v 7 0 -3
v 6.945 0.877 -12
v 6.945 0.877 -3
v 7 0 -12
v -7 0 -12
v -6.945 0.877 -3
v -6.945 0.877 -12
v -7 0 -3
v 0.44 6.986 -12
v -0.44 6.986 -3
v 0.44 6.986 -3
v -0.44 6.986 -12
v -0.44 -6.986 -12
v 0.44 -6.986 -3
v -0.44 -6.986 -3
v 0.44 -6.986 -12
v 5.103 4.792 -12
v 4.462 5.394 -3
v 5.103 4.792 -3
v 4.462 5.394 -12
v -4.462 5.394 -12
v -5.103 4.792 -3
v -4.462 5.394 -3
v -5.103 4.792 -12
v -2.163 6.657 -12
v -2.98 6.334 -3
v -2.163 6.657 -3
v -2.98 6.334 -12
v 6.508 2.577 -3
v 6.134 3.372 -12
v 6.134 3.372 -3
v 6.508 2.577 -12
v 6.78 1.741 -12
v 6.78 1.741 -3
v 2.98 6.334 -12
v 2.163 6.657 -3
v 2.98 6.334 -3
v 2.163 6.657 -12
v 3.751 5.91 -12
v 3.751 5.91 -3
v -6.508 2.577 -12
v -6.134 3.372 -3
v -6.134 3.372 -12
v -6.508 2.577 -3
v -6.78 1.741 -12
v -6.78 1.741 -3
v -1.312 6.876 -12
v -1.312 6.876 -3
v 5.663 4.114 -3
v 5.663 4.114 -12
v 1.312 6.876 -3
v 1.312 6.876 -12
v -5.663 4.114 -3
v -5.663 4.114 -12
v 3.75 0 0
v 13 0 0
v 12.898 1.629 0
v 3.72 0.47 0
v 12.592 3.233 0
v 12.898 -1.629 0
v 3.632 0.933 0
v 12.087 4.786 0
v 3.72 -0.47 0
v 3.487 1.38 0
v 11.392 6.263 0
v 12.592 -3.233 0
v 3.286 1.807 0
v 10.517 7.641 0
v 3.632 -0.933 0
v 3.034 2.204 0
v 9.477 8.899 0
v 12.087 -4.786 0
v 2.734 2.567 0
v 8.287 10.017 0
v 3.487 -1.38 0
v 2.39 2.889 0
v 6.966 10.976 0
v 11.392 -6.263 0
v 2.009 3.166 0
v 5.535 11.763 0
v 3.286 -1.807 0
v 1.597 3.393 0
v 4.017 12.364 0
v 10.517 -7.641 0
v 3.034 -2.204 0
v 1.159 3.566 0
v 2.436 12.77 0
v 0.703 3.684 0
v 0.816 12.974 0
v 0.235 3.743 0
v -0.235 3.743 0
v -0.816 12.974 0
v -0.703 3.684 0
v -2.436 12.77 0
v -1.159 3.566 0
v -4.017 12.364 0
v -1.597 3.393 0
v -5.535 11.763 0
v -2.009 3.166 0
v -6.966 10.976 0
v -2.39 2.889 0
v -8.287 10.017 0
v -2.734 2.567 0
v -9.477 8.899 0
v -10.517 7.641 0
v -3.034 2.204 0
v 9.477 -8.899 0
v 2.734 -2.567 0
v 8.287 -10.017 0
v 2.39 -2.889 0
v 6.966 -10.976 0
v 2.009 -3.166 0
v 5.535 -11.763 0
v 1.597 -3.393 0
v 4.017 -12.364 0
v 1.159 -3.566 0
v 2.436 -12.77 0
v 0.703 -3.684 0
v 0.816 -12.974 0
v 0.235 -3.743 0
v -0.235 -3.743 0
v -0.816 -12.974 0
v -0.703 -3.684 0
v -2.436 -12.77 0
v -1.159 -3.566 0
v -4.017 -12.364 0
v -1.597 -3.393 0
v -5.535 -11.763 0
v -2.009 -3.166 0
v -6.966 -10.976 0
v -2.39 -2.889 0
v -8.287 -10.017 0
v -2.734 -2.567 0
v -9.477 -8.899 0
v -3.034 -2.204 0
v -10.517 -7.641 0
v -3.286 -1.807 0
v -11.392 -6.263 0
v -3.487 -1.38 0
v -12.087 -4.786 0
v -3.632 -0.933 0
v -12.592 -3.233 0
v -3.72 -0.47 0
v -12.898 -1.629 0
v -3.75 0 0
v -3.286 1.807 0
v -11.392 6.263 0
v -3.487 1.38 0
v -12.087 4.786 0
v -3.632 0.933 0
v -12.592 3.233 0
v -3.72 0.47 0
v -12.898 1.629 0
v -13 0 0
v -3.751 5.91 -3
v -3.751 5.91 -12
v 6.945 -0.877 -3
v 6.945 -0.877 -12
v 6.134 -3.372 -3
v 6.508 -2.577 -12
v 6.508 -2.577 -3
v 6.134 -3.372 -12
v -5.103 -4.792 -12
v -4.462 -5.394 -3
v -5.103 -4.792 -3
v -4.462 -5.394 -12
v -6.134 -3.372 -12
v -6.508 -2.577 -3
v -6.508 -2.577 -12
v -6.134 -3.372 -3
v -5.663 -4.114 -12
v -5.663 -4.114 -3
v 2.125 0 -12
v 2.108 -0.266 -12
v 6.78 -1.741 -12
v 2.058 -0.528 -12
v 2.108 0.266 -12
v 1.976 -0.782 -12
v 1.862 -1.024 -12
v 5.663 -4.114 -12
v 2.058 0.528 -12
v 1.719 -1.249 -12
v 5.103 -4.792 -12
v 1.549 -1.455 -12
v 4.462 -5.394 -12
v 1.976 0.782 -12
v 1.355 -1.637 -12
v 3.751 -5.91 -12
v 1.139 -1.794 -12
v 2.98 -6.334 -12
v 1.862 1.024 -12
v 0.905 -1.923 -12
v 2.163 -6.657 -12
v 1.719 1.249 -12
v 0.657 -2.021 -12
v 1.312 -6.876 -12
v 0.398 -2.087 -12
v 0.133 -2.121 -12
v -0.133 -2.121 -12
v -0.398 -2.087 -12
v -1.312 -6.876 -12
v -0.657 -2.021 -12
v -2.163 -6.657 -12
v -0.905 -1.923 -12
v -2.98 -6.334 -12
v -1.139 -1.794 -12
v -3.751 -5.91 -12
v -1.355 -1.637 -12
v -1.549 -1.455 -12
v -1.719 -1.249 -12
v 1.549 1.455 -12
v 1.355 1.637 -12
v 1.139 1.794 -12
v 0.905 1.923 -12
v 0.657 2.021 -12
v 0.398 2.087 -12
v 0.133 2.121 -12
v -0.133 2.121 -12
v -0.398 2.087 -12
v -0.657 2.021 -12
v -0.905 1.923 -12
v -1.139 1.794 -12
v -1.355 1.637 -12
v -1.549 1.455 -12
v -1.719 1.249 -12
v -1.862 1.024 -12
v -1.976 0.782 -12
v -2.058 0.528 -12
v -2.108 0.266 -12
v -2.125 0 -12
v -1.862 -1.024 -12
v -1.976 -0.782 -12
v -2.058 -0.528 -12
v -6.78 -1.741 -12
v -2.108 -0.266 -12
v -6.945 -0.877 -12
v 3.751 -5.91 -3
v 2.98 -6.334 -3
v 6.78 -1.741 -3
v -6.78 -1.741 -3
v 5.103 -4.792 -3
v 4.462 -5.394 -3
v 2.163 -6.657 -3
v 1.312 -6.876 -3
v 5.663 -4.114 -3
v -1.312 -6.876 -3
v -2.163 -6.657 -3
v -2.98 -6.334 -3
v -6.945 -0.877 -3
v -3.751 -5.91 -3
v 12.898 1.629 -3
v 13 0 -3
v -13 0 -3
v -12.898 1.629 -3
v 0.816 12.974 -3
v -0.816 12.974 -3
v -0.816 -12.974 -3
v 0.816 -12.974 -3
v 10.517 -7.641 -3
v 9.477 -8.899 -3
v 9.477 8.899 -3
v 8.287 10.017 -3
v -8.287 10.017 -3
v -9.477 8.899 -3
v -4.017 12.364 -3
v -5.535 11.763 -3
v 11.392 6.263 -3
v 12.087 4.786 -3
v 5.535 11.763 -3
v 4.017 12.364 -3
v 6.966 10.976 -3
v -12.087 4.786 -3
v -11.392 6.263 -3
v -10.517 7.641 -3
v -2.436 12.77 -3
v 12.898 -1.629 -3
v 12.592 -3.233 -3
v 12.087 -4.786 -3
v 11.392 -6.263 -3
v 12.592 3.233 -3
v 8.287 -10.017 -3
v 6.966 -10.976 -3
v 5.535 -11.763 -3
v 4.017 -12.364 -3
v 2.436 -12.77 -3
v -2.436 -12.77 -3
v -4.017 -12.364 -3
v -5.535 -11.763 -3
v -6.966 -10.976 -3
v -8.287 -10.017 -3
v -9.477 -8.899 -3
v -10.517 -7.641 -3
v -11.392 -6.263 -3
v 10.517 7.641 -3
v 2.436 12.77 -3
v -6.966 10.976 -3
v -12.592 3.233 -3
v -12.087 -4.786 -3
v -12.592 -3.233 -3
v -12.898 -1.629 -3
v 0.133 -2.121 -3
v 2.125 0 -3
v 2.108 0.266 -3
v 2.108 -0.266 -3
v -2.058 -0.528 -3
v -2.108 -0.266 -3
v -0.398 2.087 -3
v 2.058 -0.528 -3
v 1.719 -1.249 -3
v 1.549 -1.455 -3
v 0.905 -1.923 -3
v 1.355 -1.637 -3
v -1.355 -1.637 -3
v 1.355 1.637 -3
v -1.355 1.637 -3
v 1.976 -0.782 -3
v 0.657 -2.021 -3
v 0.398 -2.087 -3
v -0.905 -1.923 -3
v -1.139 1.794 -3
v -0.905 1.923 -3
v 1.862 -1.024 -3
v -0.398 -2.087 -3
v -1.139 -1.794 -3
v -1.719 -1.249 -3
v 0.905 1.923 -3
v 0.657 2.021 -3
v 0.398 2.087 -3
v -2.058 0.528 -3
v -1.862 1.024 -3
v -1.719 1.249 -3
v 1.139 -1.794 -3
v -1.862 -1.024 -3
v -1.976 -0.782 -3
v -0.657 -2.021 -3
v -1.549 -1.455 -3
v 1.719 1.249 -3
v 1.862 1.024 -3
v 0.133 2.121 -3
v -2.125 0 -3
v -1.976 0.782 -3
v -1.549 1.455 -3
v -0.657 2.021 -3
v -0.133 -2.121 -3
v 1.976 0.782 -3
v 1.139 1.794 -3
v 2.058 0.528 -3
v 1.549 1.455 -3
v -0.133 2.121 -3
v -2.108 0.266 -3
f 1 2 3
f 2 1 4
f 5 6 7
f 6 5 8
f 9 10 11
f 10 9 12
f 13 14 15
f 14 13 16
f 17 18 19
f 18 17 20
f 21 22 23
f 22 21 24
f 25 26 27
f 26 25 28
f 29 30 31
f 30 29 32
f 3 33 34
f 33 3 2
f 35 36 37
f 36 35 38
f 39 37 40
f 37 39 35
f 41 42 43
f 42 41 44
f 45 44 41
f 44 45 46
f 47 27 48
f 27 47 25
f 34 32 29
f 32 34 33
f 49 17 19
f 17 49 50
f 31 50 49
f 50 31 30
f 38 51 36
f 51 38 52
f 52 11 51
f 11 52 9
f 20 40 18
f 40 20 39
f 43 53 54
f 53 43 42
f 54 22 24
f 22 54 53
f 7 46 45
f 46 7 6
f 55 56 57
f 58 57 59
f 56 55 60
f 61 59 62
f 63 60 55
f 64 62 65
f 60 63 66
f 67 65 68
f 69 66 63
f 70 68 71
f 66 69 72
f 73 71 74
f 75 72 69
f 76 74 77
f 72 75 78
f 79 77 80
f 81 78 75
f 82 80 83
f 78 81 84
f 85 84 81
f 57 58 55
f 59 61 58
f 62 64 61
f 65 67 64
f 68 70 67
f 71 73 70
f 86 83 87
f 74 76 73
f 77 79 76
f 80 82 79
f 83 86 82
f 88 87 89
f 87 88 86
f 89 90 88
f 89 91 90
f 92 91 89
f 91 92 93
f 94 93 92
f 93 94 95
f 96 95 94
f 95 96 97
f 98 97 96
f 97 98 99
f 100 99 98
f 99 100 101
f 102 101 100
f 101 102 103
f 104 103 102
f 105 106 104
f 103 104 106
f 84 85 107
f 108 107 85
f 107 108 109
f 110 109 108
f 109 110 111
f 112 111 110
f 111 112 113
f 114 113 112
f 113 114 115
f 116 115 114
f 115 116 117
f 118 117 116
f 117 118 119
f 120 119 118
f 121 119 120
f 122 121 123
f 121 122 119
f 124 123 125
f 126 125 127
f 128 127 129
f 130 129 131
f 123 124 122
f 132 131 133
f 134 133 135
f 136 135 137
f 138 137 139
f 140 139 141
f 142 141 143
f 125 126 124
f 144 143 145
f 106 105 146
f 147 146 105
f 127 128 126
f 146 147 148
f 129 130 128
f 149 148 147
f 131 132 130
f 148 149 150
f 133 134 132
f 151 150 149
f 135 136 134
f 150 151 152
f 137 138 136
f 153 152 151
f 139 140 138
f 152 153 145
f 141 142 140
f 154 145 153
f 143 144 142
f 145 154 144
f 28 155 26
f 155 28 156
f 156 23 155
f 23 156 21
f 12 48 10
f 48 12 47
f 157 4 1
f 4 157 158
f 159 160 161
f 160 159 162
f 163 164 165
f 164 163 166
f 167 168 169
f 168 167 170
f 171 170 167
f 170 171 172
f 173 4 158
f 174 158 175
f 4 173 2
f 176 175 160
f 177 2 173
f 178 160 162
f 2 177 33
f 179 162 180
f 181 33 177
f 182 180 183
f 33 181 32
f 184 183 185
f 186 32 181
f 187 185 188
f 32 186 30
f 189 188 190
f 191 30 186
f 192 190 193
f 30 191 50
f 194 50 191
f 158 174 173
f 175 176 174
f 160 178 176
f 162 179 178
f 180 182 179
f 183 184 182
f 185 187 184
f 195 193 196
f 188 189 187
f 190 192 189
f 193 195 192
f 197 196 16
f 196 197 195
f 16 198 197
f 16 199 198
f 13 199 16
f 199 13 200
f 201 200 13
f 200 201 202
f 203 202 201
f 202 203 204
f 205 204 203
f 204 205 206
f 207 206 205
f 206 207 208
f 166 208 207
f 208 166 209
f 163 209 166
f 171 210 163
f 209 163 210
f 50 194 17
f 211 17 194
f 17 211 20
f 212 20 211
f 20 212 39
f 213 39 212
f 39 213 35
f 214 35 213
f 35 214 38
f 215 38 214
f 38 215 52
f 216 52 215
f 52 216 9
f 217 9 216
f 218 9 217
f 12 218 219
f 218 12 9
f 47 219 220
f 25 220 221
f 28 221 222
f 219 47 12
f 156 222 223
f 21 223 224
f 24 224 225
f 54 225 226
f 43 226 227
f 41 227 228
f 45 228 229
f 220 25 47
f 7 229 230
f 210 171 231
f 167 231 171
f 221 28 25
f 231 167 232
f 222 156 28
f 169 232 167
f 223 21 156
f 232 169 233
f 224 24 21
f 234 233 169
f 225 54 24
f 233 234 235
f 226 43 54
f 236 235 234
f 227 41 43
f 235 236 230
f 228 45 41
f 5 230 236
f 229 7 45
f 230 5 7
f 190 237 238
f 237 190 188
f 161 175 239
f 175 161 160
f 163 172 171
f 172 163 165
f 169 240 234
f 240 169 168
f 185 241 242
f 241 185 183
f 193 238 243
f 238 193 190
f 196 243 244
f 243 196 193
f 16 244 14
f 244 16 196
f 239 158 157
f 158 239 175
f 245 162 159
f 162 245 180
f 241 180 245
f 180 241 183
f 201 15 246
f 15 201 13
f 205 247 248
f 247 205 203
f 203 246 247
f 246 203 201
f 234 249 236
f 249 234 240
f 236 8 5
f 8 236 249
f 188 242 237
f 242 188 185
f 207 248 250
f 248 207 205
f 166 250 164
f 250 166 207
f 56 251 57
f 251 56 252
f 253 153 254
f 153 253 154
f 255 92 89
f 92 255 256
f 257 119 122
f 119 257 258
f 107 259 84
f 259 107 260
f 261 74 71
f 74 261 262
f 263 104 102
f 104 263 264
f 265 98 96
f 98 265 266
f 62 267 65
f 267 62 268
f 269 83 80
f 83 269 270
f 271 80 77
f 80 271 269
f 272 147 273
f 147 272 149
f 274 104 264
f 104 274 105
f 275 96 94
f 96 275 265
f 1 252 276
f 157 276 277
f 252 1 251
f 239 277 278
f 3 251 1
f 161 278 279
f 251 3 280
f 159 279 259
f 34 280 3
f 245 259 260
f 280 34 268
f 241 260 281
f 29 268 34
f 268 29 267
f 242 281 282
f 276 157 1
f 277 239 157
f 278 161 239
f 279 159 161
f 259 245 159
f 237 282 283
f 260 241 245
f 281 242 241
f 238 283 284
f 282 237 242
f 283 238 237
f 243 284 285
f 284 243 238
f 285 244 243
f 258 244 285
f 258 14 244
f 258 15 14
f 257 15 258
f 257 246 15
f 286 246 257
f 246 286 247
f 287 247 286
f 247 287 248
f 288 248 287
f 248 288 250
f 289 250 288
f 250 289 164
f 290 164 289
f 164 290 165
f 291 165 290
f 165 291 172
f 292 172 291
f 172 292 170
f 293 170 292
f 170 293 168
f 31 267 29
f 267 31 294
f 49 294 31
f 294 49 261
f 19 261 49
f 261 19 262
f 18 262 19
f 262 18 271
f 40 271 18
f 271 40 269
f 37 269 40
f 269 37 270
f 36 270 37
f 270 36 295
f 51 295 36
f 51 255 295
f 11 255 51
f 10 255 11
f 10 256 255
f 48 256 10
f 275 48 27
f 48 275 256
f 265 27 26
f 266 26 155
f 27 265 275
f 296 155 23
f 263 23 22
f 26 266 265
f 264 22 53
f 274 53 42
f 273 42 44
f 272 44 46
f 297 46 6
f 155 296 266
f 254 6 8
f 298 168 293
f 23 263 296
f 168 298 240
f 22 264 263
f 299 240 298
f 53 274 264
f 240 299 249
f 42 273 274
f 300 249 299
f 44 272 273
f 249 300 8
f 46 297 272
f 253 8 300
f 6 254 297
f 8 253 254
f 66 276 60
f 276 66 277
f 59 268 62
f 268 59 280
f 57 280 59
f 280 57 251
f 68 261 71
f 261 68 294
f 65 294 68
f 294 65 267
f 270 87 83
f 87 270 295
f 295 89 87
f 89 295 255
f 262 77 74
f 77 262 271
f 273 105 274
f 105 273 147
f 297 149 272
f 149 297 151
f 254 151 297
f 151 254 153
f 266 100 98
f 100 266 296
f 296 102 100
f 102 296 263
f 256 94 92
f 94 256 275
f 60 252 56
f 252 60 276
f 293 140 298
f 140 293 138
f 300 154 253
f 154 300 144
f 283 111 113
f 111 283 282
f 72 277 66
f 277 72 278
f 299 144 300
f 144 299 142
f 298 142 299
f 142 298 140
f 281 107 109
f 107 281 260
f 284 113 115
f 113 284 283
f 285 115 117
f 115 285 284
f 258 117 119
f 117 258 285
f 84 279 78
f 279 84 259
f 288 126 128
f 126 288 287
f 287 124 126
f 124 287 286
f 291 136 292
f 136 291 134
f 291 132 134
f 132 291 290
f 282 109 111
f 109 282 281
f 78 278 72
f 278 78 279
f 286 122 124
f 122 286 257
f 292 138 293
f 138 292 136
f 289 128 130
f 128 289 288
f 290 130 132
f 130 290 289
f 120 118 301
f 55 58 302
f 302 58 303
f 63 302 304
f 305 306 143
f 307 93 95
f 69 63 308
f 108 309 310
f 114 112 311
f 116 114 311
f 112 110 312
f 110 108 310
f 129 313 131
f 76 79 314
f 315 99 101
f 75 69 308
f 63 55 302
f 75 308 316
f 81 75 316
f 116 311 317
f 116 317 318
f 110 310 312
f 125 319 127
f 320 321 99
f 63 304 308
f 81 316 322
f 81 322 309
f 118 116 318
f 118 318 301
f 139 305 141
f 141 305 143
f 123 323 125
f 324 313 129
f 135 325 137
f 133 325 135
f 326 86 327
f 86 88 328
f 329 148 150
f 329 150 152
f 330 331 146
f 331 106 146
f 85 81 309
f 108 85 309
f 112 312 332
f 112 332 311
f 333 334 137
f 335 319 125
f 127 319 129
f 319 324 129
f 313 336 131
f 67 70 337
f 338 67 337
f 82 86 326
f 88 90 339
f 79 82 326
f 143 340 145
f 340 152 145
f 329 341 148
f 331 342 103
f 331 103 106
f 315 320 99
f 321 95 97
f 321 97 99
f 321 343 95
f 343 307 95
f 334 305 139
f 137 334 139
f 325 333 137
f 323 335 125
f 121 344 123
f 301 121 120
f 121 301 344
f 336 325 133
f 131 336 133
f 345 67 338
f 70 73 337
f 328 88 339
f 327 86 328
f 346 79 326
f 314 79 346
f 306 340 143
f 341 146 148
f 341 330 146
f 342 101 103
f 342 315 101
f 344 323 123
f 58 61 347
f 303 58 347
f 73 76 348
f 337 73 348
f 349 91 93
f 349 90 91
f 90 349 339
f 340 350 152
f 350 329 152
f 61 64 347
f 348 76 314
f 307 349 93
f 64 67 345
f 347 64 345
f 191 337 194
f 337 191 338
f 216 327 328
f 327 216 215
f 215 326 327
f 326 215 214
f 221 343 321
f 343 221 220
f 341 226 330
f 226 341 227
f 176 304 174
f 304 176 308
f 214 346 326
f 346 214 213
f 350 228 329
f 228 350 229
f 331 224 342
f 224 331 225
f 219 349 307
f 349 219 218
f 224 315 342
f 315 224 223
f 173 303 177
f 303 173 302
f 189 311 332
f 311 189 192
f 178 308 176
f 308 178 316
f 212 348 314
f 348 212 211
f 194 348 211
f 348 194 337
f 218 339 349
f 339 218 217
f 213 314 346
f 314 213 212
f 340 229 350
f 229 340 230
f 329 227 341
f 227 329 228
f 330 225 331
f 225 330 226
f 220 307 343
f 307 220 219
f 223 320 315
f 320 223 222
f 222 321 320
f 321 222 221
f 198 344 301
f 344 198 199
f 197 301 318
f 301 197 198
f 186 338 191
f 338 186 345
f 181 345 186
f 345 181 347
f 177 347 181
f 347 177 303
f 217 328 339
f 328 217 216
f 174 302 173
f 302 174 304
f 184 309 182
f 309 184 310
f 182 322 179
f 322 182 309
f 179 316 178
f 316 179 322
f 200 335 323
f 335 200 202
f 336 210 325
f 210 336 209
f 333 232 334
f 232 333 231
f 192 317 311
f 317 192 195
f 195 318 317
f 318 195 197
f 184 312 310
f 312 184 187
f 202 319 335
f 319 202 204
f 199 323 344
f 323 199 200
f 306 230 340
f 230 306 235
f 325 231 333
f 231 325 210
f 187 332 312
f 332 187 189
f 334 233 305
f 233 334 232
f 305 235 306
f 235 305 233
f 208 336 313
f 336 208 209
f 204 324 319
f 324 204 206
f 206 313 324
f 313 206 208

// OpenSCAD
$fn = 50;


difference() {
	union() {
		translate(v = [0, 0, -12.0000000000]) {
			cylinder(h = 12, r = 7.0000000000);
		}
		translate(v = [0, 0, -3.0000000000]) {
			cylinder(h = 3, r = 13.0000000000);
		}
	}
	union() {
		translate(v = [0, 0, 0]) {
			rotate(a = [0, 0, 0]) {
				difference() {
					union() {
						#translate(v = [0, 0, -12.0000000000]) {
							cylinder(h = 12, r = 2.0000000000);
						}
						#translate(v = [0, 0, -3]) {
							cylinder(h = 3, r1 = 2.1250000000, r2 = 3.7500000000);
						}
						#translate(v = [0, 0, -12.0000000000]) {
							cylinder(h = 12, r = 2.1250000000);
						}
						#translate(v = [0, 0, -12.0000000000]) {
							cylinder(h = 12, r = 2.0000000000);
						}
					}
					union();
				}
			}
		}
	}
}
